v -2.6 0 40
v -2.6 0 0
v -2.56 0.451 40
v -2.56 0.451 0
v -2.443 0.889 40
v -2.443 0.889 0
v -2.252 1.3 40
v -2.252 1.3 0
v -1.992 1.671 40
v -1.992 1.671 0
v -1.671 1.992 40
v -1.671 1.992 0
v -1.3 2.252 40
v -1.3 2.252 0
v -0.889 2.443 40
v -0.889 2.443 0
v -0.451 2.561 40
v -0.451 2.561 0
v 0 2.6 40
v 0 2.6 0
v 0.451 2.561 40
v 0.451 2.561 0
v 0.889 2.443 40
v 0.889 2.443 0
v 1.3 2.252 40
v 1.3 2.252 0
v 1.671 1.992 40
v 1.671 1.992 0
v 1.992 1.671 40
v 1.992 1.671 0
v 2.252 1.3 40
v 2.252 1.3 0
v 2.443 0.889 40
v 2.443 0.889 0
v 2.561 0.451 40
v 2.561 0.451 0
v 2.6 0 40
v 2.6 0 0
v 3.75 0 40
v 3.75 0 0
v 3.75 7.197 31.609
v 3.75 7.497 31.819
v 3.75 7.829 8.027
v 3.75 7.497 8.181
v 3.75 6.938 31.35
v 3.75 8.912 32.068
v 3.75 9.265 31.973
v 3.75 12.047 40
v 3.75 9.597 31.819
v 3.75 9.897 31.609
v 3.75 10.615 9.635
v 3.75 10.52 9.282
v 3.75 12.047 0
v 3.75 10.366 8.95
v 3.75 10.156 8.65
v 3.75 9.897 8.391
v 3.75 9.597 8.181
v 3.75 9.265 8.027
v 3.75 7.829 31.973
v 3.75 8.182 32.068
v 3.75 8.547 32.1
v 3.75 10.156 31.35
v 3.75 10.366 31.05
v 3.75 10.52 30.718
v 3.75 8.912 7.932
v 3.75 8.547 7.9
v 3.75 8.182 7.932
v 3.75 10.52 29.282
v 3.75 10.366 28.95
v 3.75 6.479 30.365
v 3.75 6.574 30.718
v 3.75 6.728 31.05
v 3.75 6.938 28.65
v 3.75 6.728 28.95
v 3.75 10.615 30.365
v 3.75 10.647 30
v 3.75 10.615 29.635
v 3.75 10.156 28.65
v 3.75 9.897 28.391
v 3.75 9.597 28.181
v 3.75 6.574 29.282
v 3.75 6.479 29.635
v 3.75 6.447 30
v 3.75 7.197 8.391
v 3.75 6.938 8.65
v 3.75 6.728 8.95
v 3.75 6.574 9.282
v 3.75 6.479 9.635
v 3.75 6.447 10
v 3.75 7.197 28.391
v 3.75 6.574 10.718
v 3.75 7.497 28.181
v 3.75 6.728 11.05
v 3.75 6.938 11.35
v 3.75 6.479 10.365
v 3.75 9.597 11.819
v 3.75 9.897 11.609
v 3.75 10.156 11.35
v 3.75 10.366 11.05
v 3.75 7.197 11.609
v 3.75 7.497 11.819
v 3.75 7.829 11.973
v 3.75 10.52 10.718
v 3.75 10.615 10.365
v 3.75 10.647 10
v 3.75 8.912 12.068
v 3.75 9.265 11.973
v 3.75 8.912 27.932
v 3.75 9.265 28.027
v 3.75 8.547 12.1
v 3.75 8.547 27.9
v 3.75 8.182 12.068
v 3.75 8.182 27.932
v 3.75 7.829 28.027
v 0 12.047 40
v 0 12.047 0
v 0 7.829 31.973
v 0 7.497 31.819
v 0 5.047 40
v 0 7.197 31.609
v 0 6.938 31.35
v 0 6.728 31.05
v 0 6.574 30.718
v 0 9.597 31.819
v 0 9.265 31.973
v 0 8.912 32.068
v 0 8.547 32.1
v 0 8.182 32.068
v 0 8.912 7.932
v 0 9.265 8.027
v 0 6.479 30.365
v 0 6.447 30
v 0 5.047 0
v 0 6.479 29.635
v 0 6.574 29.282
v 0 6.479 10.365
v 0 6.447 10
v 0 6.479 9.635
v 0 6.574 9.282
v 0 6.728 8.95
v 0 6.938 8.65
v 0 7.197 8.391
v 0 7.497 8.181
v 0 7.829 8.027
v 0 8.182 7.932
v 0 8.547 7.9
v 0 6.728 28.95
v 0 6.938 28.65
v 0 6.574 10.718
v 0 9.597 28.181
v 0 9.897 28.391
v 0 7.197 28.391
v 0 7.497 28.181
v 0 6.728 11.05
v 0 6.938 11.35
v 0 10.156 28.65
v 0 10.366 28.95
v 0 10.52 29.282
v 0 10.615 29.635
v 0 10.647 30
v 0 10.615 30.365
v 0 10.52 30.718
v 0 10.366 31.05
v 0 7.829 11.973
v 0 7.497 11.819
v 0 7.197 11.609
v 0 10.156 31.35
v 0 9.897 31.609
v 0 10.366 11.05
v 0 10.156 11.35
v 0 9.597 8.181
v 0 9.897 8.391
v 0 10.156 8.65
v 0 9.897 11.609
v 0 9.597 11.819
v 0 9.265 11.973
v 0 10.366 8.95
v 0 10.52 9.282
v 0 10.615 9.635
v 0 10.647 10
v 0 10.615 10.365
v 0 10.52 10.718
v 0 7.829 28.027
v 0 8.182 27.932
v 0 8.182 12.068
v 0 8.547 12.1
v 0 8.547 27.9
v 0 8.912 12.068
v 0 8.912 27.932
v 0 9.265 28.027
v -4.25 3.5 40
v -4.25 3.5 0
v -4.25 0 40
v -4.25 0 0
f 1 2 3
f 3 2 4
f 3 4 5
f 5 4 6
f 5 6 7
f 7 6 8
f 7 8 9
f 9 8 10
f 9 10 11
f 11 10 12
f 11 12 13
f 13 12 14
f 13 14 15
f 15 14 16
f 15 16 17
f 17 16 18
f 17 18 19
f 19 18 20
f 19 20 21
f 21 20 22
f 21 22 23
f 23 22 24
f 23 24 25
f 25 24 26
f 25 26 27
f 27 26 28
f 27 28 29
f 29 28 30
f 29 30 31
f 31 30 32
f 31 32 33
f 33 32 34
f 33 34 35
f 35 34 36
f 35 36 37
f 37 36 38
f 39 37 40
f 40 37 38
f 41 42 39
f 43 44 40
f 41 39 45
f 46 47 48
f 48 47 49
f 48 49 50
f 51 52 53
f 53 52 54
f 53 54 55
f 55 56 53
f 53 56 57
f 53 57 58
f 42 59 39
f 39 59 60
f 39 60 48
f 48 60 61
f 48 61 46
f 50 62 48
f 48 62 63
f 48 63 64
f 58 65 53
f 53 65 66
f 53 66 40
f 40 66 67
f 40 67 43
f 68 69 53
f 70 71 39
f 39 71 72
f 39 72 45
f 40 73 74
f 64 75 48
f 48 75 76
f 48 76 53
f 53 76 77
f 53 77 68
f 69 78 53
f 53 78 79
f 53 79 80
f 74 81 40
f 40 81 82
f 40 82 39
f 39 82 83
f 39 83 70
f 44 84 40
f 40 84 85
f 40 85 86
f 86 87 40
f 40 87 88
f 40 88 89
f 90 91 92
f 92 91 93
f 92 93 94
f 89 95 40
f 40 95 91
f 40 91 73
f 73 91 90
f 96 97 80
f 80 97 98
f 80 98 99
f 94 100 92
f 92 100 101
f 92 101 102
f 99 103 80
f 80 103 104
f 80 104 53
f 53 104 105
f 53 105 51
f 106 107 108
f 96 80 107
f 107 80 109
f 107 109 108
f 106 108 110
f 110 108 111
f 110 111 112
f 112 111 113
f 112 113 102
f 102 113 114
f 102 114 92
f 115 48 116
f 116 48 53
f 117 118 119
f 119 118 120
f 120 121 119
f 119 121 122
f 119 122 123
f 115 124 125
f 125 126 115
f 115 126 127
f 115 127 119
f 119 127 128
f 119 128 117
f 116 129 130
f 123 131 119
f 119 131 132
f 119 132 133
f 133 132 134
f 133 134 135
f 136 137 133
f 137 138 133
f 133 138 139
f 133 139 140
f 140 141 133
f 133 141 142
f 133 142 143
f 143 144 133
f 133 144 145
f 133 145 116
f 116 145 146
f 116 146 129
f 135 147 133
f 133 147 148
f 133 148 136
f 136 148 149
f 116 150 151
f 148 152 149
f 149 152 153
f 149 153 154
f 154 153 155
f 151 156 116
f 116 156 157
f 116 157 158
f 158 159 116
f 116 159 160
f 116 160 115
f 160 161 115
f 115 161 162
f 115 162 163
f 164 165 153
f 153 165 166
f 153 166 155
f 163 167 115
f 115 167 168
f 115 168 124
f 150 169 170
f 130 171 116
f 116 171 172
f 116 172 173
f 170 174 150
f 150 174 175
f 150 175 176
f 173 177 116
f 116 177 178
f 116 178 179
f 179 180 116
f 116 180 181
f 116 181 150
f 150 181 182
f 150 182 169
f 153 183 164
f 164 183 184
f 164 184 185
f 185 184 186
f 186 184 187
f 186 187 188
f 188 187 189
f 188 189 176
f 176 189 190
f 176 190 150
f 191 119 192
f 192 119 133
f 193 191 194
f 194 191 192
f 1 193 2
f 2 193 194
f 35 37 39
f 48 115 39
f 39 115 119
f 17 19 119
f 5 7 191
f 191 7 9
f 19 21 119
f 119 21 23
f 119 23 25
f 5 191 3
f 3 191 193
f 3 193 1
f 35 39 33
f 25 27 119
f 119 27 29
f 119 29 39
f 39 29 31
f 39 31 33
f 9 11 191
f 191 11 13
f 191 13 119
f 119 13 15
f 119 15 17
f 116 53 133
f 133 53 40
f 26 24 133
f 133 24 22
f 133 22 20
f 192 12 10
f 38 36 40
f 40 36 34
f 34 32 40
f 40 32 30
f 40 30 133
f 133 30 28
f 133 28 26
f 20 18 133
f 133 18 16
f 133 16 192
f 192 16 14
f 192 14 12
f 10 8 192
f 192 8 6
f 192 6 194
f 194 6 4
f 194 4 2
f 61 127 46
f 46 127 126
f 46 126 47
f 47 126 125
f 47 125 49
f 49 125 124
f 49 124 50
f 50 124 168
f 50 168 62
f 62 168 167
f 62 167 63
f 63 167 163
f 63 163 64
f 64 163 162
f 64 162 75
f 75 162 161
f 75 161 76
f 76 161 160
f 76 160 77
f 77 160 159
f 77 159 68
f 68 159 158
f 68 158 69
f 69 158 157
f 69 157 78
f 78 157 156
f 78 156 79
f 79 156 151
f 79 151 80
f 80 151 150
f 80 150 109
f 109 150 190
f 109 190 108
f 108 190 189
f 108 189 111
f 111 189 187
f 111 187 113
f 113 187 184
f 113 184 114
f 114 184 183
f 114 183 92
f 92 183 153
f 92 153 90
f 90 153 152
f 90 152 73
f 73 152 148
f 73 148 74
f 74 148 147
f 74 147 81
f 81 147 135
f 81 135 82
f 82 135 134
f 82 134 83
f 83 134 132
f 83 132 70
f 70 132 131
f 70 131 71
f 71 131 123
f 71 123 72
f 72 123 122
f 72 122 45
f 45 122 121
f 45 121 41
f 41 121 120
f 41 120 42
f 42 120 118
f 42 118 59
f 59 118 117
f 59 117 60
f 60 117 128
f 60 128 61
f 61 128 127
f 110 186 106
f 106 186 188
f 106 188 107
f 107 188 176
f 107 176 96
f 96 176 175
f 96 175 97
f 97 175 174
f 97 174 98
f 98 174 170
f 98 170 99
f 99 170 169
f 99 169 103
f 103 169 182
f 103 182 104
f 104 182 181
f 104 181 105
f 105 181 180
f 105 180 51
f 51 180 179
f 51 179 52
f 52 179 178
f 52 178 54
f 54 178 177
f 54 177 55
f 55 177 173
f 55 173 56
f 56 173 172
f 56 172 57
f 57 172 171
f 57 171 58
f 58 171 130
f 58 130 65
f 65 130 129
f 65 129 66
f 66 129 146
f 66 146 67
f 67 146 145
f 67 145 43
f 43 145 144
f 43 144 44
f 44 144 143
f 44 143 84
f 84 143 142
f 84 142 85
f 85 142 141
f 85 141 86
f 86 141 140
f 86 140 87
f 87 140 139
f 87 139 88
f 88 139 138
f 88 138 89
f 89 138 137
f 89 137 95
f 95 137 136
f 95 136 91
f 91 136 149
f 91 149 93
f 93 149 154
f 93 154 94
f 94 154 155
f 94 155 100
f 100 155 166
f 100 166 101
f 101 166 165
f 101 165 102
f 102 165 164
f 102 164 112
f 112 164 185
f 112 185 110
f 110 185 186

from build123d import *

# Parameters (mm, degrees)
BOSS_EXTRUDE1_DEPTH = 40
SKETCH2_R           = 2.1
CUT_EXTRUDE1_DEPTH  = 42.990351999


with BuildPart() as part:
    # Sketch1 → Boss-Extrude1 (new body)
    with BuildSketch(Plane.XY):
        with BuildLine():
            Line((-2.6, 0), (-4.25, 0))
            Line((-4.25, 0), (-4.25, 3.5))
            Line((-4.25, 3.5), (0, 5.046873496))
            Line((0, 5.046873496), (0, 12.046873496))
            Line((0, 12.046873496), (3.75, 12.046873496))
            Line((3.75, 12.046873496), (3.75, 0))
            Line((3.75, 0), (2.6, 0))
            ThreePointArc((2.6, 0), (0, 2.6), (-2.6, 0))
        make_face()
    extrude(amount=BOSS_EXTRUDE1_DEPTH)

    # Sketch2 → Cut-Extrude1 (cut, through all)
    with BuildSketch(Plane.ZY):
        with Locations((10, 8.546873496)):
            Circle(SKETCH2_R)
        with Locations((30, 8.546873496)):
            Circle(SKETCH2_R)
    extrude(amount=-CUT_EXTRUDE1_DEPTH, mode=Mode.SUBTRACT)


solid = part.part
